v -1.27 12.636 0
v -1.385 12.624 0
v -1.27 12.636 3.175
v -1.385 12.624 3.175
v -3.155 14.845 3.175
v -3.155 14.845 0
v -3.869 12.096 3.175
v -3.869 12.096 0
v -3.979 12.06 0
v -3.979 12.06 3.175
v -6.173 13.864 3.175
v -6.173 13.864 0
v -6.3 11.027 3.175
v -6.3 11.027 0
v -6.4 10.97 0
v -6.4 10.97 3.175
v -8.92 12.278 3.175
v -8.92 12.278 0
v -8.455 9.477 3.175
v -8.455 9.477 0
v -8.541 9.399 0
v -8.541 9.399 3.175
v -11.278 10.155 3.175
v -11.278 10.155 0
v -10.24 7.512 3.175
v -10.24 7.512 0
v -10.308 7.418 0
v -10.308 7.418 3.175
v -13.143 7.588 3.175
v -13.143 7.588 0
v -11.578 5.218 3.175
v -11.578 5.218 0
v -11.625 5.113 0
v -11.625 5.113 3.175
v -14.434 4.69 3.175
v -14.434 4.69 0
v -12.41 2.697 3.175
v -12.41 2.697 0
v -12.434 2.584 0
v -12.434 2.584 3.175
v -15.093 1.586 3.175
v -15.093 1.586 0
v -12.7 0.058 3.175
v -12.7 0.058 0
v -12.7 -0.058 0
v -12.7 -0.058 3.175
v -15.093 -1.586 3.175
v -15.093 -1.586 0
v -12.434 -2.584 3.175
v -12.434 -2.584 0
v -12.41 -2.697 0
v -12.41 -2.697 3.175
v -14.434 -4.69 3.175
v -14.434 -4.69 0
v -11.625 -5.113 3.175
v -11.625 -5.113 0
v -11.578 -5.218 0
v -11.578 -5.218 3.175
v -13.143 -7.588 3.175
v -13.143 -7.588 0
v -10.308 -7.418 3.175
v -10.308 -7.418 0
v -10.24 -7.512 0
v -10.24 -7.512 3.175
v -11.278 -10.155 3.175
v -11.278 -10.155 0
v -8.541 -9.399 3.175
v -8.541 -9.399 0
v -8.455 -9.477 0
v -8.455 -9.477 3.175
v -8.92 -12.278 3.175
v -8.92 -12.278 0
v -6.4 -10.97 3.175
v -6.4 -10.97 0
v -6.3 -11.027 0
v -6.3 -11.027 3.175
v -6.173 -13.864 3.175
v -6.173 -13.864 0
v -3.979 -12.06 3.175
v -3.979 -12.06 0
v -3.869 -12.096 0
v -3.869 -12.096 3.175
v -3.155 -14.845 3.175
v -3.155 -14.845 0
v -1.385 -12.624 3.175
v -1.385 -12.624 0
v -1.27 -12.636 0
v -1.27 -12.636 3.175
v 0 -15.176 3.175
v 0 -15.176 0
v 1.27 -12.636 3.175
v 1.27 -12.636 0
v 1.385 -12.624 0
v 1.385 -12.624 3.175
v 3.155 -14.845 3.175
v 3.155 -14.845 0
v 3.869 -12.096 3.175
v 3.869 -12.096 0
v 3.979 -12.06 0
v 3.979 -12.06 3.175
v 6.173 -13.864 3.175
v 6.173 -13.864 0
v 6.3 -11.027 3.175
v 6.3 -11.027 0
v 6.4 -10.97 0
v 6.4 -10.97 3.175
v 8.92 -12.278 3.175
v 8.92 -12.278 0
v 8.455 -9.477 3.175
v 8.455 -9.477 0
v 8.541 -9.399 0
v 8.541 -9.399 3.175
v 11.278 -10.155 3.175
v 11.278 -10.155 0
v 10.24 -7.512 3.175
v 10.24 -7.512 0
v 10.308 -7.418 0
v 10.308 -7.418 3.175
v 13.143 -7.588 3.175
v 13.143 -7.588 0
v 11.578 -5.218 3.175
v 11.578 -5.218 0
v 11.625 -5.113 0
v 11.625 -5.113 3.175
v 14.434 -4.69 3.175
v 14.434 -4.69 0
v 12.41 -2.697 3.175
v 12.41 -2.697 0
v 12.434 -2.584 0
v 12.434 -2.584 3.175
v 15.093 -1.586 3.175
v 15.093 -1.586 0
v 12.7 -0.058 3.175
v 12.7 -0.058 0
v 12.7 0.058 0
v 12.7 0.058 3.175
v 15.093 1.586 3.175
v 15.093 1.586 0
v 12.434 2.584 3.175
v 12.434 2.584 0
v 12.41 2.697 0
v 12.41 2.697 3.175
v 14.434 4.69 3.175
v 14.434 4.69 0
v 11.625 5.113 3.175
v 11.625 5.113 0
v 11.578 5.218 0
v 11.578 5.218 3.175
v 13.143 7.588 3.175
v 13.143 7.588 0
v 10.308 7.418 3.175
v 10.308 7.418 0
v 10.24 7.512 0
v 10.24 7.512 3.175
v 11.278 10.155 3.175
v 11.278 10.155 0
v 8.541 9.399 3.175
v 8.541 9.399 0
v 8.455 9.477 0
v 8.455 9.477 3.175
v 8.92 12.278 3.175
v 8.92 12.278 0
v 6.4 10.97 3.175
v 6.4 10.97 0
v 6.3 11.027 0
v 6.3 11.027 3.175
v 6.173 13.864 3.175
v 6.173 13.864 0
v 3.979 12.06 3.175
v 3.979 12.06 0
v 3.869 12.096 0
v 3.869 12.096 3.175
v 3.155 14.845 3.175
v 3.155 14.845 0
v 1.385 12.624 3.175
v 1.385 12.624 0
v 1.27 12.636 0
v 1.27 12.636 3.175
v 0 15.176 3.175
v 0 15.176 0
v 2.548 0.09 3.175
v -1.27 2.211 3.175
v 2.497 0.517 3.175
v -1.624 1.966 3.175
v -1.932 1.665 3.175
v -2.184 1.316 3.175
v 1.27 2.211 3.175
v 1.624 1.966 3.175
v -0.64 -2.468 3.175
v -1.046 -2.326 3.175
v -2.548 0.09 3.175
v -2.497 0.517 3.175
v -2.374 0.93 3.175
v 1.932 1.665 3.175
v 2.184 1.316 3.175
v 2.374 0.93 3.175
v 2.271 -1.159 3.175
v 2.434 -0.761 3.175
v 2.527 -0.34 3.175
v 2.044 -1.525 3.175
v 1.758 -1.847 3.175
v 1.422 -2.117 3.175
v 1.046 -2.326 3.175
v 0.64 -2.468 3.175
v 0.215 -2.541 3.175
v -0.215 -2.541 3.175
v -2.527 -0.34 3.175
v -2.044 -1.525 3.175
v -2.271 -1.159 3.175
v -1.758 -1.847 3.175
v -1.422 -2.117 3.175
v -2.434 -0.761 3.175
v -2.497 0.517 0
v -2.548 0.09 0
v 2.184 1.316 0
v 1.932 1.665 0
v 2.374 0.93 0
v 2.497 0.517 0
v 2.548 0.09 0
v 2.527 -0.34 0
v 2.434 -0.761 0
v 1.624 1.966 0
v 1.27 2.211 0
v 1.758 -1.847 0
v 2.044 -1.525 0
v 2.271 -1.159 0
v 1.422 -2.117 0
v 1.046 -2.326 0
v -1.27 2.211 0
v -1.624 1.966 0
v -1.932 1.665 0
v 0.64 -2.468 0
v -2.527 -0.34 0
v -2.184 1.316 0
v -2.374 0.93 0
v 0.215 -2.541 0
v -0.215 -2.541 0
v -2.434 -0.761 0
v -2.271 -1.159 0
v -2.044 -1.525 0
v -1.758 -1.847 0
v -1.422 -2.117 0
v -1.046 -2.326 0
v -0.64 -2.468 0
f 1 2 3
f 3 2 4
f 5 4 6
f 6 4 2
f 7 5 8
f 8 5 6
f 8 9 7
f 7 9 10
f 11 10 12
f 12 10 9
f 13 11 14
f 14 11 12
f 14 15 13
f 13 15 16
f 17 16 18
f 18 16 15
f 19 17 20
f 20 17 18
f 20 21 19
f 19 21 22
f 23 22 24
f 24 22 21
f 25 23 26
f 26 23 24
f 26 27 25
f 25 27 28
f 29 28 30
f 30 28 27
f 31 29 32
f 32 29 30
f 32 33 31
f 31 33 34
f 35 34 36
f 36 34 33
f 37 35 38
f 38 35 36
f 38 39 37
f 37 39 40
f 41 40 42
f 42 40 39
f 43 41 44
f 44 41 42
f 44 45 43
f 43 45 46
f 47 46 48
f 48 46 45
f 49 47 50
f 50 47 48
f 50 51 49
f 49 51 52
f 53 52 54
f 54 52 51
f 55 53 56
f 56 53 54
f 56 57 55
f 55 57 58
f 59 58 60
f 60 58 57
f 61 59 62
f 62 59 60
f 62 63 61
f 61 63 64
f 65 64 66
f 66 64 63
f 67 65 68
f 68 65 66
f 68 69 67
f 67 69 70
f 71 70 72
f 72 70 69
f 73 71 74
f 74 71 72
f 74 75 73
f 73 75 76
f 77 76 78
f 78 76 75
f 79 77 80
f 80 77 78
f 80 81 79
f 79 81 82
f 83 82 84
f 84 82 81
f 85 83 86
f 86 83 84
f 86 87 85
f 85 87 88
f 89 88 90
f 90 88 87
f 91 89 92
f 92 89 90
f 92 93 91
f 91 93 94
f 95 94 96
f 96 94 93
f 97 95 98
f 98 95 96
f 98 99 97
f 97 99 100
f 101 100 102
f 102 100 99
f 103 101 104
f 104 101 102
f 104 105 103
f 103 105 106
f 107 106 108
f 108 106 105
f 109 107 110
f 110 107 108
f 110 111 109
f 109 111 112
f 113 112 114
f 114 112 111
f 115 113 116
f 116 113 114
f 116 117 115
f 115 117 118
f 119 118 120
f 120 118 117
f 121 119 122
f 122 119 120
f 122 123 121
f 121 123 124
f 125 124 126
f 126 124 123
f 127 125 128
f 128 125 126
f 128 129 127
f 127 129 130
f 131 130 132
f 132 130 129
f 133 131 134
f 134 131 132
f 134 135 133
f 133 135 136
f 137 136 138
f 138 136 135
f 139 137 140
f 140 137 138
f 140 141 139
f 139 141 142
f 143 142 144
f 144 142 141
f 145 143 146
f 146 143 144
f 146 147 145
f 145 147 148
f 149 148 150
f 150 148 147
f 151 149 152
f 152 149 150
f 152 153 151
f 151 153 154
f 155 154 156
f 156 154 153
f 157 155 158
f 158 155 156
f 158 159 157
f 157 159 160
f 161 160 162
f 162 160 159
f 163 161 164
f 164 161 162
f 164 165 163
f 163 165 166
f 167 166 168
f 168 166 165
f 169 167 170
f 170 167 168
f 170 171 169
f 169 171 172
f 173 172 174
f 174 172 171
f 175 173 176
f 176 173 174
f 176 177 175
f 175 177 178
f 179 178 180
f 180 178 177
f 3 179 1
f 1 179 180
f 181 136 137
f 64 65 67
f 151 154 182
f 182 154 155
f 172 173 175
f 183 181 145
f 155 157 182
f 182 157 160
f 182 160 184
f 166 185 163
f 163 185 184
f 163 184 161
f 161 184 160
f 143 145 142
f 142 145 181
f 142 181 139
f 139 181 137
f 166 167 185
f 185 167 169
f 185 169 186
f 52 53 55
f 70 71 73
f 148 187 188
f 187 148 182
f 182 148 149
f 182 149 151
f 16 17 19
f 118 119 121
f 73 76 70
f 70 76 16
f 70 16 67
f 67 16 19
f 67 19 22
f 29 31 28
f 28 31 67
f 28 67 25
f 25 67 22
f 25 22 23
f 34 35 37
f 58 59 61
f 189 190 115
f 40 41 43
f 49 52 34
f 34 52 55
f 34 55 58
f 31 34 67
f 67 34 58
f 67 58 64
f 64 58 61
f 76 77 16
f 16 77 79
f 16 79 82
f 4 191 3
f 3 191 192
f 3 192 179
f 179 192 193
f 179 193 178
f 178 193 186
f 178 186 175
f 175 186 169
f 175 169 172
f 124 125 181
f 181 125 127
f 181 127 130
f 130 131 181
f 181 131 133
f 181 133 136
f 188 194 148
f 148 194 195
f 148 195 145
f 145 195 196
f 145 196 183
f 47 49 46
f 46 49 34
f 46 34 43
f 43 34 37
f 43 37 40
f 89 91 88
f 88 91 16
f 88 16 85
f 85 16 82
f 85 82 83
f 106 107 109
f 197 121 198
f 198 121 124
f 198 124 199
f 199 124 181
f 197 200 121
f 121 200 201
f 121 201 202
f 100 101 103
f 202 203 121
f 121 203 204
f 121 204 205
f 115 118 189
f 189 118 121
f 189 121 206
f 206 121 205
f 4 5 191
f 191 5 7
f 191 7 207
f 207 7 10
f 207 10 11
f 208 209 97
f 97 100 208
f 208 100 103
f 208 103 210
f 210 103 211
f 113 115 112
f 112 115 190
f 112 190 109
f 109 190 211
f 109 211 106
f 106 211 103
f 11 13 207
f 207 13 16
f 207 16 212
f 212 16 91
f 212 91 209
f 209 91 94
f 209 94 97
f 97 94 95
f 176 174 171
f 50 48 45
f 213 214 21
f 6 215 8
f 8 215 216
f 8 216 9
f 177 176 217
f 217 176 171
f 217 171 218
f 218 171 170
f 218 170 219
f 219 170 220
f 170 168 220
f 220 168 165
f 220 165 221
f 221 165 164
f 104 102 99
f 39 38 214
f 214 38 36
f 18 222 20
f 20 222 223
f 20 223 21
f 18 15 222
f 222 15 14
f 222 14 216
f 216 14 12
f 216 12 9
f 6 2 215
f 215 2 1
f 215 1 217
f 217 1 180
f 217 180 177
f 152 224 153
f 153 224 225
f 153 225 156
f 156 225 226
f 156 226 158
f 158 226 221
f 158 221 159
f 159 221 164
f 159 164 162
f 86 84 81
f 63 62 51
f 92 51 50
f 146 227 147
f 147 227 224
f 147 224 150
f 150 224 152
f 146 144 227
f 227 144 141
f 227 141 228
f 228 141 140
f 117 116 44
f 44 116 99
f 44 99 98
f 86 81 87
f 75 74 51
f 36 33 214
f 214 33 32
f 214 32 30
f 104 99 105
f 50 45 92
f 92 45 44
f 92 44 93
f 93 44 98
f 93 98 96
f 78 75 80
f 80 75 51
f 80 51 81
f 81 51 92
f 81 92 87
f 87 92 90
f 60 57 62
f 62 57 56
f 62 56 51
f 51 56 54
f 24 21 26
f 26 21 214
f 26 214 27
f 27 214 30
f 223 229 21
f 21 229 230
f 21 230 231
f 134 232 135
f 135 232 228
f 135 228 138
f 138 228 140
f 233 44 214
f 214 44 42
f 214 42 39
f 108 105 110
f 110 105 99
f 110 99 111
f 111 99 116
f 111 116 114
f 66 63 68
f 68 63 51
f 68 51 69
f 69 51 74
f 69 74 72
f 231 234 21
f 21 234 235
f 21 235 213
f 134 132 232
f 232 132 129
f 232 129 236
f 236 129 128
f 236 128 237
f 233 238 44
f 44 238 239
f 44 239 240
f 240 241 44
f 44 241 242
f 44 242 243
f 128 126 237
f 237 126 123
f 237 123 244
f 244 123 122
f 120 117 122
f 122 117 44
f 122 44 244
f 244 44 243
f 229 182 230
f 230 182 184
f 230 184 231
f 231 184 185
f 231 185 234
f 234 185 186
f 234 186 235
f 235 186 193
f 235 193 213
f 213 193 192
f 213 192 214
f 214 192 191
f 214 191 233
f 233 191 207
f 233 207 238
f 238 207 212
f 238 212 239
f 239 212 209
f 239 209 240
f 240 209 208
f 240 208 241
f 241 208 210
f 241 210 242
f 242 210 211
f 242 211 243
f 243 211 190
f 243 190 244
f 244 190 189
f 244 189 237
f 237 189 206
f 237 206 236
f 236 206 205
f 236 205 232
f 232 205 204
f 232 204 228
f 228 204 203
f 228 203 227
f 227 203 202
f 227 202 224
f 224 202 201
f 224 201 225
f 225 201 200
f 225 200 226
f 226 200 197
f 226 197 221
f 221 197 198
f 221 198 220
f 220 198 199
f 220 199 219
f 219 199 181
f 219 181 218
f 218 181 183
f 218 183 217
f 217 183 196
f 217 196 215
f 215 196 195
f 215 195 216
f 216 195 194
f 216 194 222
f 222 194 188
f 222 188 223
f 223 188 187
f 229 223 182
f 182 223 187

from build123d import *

# Parameters (mm, degrees)
BOSS_EXTRUDE1_DEPTH = 3.175
SKETCH2_R           = 2.55
CUT_EXTRUDE1_DEPTH  = 4.175
BOSS_EXTRUDE2_DEPTH = 3.175


with BuildPart() as part:
    # Sketch1 → Boss-Extrude1 (new body)
    with BuildSketch(Plane.XY):
        with BuildLine():
            Line((1.27, 12.636340451), (0, 15.176340451))
            Line((0, 15.176340451), (-1.27, 12.636340451))
            ThreePointArc((-1.27, 12.636340451), (-1.327511483, 12.630428071), (-1.384995456, 12.624253942))
            Line((-1.384995456, 12.624253942), (-3.155338604, 14.844701))
            Line((-3.155338604, 14.844701), (-3.869490362, 12.096158247))
            ThreePointArc((-3.869490362, 12.096158247), (-3.924515829, 12.078417757), (-3.979459965, 12.060426957))
            Line((-3.979459965, 12.060426957), (-6.172773769, 13.864276883))
            Line((-6.172773769, 13.864276883), (-6.299865427, 11.027315884))
            ThreePointArc((-6.299865427, 11.027315884), (-6.35, 10.998522628), (-6.400002977, 10.969501442))
            Line((-6.400002977, 10.969501442), (-8.920429101, 12.277917337))
            Line((-8.920429101, 12.277917337), (-8.454906143, 9.476526901))
            ThreePointArc((-8.454906143, 9.476526901), (-8.497958701, 9.437939284), (-8.540835149, 9.399156077))
            Line((-8.540835149, 9.399156077), (-11.278218876, 10.154953888))
            Line((-11.278218876, 10.154953888), (-10.240426889, 7.51156822))
            ThreePointArc((-10.240426889, 7.51156822), (-10.274515829, 7.464872704), (-10.308391842, 7.418022488))
            Line((-10.308391842, 7.418022488), (-13.143096367, 7.588170226))
            Line((-13.143096367, 7.588170226), (-11.578391842, 5.218317963))
            ThreePointArc((-11.578391842, 5.218317963), (-11.602027312, 5.165555367), (-11.625422345, 5.112685722))
            Line((-11.625422345, 5.112685722), (-14.43355748, 4.689747112))
            Line((-14.43355748, 4.689747112), (-12.410325511, 2.69700217))
            ThreePointArc((-12.410325511, 2.69700217), (-12.422474529, 2.640478473), (-12.434366108, 2.583900056))
            Line((-12.434366108, 2.583900056), (-15.09320287, 1.586359545))
            Line((-15.09320287, 1.586359545), (-12.699868404, 0.057814442))
            ThreePointArc((-12.699868404, 0.057814442), (-12.7, 0), (-12.699868404, -0.057814442))
            Line((-12.699868404, -0.057814442), (-15.09320287, -1.586359545))
            Line((-15.09320287, -1.586359545), (-12.434366108, -2.583900056))
            ThreePointArc((-12.434366108, -2.583900056), (-12.422474529, -2.640478473), (-12.410325511, -2.69700217))
            Line((-12.410325511, -2.69700217), (-14.43355748, -4.689747112))
            Line((-14.43355748, -4.689747112), (-11.625422345, -5.112685722))
            ThreePointArc((-11.625422345, -5.112685722), (-11.602027312, -5.165555367), (-11.578391842, -5.218317963))
            Line((-11.578391842, -5.218317963), (-13.143096367, -7.588170226))
            Line((-13.143096367, -7.588170226), (-10.308391842, -7.418022488))
            ThreePointArc((-10.308391842, -7.418022488), (-10.274515829, -7.464872704), (-10.240426889, -7.51156822))
            Line((-10.240426889, -7.51156822), (-11.278218876, -10.154953888))
            Line((-11.278218876, -10.154953888), (-8.540835149, -9.399156077))
            ThreePointArc((-8.540835149, -9.399156077), (-8.497958701, -9.437939284), (-8.454906143, -9.476526901))
            Line((-8.454906143, -9.476526901), (-8.920429101, -12.277917337))
            Line((-8.920429101, -12.277917337), (-6.400002977, -10.969501442))
            ThreePointArc((-6.400002977, -10.969501442), (-6.35, -10.998522628), (-6.299865427, -11.027315884))
            Line((-6.299865427, -11.027315884), (-6.172773769, -13.864276883))
            Line((-6.172773769, -13.864276883), (-3.979459965, -12.060426957))
            ThreePointArc((-3.979459965, -12.060426957), (-3.924515829, -12.078417757), (-3.869490362, -12.096158247))
            Line((-3.869490362, -12.096158247), (-3.155338604, -14.844701))
            Line((-3.155338604, -14.844701), (-1.384995456, -12.624253942))
            ThreePointArc((-1.384995456, -12.624253942), (-1.327511483, -12.630428071), (-1.27, -12.636340451))
            Line((-1.27, -12.636340451), (0, -15.176340451))
            Line((0, -15.176340451), (1.27, -12.636340451))
            ThreePointArc((1.27, -12.636340451), (1.327511483, -12.630428071), (1.384995456, -12.624253942))
            Line((1.384995456, -12.624253942), (3.155338604, -14.844701))
            Line((3.155338604, -14.844701), (3.869490362, -12.096158247))
            ThreePointArc((3.869490362, -12.096158247), (3.924515829, -12.078417757), (3.979459965, -12.060426957))
            Line((3.979459965, -12.060426957), (6.172773769, -13.864276883))
            Line((6.172773769, -13.864276883), (6.299865427, -11.027315884))
            ThreePointArc((6.299865427, -11.027315884), (6.35, -10.998522628), (6.400002977, -10.969501442))
            Line((6.400002977, -10.969501442), (8.920429101, -12.277917337))
            Line((8.920429101, -12.277917337), (8.454906143, -9.476526901))
            ThreePointArc((8.454906143, -9.476526901), (8.497958701, -9.437939284), (8.540835149, -9.399156077))
            Line((8.540835149, -9.399156077), (11.278218876, -10.154953888))
            Line((11.278218876, -10.154953888), (10.240426889, -7.51156822))
            ThreePointArc((10.240426889, -7.51156822), (10.274515829, -7.464872704), (10.308391842, -7.418022488))
            Line((10.308391842, -7.418022488), (13.143096367, -7.588170226))
            Line((13.143096367, -7.588170226), (11.578391842, -5.218317963))
            ThreePointArc((11.578391842, -5.218317963), (11.602027312, -5.165555367), (11.625422345, -5.112685722))
            Line((11.625422345, -5.112685722), (14.43355748, -4.689747112))
            Line((14.43355748, -4.689747112), (12.410325511, -2.69700217))
            ThreePointArc((12.410325511, -2.69700217), (12.422474529, -2.640478473), (12.434366108, -2.583900056))
            Line((12.434366108, -2.583900056), (15.09320287, -1.586359545))
            Line((15.09320287, -1.586359545), (12.699868404, -0.057814442))
            ThreePointArc((12.699868404, -0.057814442), (12.7, 0), (12.699868404, 0.057814442))
            Line((12.699868404, 0.057814442), (15.09320287, 1.586359545))
            Line((15.09320287, 1.586359545), (12.434366108, 2.583900056))
            ThreePointArc((12.434366108, 2.583900056), (12.422474529, 2.640478473), (12.410325511, 2.69700217))
            Line((12.410325511, 2.69700217), (14.43355748, 4.689747112))
            Line((14.43355748, 4.689747112), (11.625422345, 5.112685722))
            ThreePointArc((11.625422345, 5.112685722), (11.602027312, 5.165555367), (11.578391842, 5.218317963))
            Line((11.578391842, 5.218317963), (13.143096367, 7.588170226))
            Line((13.143096367, 7.588170226), (10.308391842, 7.418022488))
            ThreePointArc((10.308391842, 7.418022488), (10.274515829, 7.464872704), (10.240426889, 7.51156822))
            Line((10.240426889, 7.51156822), (11.278218876, 10.154953888))
            Line((11.278218876, 10.154953888), (8.540835149, 9.399156077))
            ThreePointArc((8.540835149, 9.399156077), (8.497958701, 9.437939284), (8.454906143, 9.476526901))
            Line((8.454906143, 9.476526901), (8.920429101, 12.277917337))
            Line((8.920429101, 12.277917337), (6.400002977, 10.969501442))
            ThreePointArc((6.400002977, 10.969501442), (6.35, 10.998522628), (6.299865427, 11.027315884))
            Line((6.299865427, 11.027315884), (6.172773769, 13.864276883))
            Line((6.172773769, 13.864276883), (3.979459965, 12.060426957))
            ThreePointArc((3.979459965, 12.060426957), (3.924515829, 12.078417757), (3.869490362, 12.096158247))
            Line((3.869490362, 12.096158247), (3.155338604, 14.844701))
            Line((3.155338604, 14.844701), (1.384995456, 12.624253942))
            ThreePointArc((1.384995456, 12.624253942), (1.327511483, 12.630428071), (1.27, 12.636340451))
        make_face()
    extrude(amount=BOSS_EXTRUDE1_DEPTH)

    # Sketch2 → Cut-Extrude1 (cut, through all)
    with BuildSketch(Plane.XY.offset(3.175)):
        Circle(SKETCH2_R)
    extrude(amount=-CUT_EXTRUDE1_DEPTH, mode=Mode.SUBTRACT)

    # Sketch3 → Boss-Extrude2 (add, through all)
    with BuildSketch(Plane.XY.offset(3.175)):
        with BuildLine():
            Line((-1.27, 2.211243994), (1.27, 2.211243994))
            ThreePointArc((1.27, 2.211243994), (0, 2.55), (-1.27, 2.211243994))
        make_face()
    extrude(amount=-BOSS_EXTRUDE2_DEPTH)


solid = part.part
